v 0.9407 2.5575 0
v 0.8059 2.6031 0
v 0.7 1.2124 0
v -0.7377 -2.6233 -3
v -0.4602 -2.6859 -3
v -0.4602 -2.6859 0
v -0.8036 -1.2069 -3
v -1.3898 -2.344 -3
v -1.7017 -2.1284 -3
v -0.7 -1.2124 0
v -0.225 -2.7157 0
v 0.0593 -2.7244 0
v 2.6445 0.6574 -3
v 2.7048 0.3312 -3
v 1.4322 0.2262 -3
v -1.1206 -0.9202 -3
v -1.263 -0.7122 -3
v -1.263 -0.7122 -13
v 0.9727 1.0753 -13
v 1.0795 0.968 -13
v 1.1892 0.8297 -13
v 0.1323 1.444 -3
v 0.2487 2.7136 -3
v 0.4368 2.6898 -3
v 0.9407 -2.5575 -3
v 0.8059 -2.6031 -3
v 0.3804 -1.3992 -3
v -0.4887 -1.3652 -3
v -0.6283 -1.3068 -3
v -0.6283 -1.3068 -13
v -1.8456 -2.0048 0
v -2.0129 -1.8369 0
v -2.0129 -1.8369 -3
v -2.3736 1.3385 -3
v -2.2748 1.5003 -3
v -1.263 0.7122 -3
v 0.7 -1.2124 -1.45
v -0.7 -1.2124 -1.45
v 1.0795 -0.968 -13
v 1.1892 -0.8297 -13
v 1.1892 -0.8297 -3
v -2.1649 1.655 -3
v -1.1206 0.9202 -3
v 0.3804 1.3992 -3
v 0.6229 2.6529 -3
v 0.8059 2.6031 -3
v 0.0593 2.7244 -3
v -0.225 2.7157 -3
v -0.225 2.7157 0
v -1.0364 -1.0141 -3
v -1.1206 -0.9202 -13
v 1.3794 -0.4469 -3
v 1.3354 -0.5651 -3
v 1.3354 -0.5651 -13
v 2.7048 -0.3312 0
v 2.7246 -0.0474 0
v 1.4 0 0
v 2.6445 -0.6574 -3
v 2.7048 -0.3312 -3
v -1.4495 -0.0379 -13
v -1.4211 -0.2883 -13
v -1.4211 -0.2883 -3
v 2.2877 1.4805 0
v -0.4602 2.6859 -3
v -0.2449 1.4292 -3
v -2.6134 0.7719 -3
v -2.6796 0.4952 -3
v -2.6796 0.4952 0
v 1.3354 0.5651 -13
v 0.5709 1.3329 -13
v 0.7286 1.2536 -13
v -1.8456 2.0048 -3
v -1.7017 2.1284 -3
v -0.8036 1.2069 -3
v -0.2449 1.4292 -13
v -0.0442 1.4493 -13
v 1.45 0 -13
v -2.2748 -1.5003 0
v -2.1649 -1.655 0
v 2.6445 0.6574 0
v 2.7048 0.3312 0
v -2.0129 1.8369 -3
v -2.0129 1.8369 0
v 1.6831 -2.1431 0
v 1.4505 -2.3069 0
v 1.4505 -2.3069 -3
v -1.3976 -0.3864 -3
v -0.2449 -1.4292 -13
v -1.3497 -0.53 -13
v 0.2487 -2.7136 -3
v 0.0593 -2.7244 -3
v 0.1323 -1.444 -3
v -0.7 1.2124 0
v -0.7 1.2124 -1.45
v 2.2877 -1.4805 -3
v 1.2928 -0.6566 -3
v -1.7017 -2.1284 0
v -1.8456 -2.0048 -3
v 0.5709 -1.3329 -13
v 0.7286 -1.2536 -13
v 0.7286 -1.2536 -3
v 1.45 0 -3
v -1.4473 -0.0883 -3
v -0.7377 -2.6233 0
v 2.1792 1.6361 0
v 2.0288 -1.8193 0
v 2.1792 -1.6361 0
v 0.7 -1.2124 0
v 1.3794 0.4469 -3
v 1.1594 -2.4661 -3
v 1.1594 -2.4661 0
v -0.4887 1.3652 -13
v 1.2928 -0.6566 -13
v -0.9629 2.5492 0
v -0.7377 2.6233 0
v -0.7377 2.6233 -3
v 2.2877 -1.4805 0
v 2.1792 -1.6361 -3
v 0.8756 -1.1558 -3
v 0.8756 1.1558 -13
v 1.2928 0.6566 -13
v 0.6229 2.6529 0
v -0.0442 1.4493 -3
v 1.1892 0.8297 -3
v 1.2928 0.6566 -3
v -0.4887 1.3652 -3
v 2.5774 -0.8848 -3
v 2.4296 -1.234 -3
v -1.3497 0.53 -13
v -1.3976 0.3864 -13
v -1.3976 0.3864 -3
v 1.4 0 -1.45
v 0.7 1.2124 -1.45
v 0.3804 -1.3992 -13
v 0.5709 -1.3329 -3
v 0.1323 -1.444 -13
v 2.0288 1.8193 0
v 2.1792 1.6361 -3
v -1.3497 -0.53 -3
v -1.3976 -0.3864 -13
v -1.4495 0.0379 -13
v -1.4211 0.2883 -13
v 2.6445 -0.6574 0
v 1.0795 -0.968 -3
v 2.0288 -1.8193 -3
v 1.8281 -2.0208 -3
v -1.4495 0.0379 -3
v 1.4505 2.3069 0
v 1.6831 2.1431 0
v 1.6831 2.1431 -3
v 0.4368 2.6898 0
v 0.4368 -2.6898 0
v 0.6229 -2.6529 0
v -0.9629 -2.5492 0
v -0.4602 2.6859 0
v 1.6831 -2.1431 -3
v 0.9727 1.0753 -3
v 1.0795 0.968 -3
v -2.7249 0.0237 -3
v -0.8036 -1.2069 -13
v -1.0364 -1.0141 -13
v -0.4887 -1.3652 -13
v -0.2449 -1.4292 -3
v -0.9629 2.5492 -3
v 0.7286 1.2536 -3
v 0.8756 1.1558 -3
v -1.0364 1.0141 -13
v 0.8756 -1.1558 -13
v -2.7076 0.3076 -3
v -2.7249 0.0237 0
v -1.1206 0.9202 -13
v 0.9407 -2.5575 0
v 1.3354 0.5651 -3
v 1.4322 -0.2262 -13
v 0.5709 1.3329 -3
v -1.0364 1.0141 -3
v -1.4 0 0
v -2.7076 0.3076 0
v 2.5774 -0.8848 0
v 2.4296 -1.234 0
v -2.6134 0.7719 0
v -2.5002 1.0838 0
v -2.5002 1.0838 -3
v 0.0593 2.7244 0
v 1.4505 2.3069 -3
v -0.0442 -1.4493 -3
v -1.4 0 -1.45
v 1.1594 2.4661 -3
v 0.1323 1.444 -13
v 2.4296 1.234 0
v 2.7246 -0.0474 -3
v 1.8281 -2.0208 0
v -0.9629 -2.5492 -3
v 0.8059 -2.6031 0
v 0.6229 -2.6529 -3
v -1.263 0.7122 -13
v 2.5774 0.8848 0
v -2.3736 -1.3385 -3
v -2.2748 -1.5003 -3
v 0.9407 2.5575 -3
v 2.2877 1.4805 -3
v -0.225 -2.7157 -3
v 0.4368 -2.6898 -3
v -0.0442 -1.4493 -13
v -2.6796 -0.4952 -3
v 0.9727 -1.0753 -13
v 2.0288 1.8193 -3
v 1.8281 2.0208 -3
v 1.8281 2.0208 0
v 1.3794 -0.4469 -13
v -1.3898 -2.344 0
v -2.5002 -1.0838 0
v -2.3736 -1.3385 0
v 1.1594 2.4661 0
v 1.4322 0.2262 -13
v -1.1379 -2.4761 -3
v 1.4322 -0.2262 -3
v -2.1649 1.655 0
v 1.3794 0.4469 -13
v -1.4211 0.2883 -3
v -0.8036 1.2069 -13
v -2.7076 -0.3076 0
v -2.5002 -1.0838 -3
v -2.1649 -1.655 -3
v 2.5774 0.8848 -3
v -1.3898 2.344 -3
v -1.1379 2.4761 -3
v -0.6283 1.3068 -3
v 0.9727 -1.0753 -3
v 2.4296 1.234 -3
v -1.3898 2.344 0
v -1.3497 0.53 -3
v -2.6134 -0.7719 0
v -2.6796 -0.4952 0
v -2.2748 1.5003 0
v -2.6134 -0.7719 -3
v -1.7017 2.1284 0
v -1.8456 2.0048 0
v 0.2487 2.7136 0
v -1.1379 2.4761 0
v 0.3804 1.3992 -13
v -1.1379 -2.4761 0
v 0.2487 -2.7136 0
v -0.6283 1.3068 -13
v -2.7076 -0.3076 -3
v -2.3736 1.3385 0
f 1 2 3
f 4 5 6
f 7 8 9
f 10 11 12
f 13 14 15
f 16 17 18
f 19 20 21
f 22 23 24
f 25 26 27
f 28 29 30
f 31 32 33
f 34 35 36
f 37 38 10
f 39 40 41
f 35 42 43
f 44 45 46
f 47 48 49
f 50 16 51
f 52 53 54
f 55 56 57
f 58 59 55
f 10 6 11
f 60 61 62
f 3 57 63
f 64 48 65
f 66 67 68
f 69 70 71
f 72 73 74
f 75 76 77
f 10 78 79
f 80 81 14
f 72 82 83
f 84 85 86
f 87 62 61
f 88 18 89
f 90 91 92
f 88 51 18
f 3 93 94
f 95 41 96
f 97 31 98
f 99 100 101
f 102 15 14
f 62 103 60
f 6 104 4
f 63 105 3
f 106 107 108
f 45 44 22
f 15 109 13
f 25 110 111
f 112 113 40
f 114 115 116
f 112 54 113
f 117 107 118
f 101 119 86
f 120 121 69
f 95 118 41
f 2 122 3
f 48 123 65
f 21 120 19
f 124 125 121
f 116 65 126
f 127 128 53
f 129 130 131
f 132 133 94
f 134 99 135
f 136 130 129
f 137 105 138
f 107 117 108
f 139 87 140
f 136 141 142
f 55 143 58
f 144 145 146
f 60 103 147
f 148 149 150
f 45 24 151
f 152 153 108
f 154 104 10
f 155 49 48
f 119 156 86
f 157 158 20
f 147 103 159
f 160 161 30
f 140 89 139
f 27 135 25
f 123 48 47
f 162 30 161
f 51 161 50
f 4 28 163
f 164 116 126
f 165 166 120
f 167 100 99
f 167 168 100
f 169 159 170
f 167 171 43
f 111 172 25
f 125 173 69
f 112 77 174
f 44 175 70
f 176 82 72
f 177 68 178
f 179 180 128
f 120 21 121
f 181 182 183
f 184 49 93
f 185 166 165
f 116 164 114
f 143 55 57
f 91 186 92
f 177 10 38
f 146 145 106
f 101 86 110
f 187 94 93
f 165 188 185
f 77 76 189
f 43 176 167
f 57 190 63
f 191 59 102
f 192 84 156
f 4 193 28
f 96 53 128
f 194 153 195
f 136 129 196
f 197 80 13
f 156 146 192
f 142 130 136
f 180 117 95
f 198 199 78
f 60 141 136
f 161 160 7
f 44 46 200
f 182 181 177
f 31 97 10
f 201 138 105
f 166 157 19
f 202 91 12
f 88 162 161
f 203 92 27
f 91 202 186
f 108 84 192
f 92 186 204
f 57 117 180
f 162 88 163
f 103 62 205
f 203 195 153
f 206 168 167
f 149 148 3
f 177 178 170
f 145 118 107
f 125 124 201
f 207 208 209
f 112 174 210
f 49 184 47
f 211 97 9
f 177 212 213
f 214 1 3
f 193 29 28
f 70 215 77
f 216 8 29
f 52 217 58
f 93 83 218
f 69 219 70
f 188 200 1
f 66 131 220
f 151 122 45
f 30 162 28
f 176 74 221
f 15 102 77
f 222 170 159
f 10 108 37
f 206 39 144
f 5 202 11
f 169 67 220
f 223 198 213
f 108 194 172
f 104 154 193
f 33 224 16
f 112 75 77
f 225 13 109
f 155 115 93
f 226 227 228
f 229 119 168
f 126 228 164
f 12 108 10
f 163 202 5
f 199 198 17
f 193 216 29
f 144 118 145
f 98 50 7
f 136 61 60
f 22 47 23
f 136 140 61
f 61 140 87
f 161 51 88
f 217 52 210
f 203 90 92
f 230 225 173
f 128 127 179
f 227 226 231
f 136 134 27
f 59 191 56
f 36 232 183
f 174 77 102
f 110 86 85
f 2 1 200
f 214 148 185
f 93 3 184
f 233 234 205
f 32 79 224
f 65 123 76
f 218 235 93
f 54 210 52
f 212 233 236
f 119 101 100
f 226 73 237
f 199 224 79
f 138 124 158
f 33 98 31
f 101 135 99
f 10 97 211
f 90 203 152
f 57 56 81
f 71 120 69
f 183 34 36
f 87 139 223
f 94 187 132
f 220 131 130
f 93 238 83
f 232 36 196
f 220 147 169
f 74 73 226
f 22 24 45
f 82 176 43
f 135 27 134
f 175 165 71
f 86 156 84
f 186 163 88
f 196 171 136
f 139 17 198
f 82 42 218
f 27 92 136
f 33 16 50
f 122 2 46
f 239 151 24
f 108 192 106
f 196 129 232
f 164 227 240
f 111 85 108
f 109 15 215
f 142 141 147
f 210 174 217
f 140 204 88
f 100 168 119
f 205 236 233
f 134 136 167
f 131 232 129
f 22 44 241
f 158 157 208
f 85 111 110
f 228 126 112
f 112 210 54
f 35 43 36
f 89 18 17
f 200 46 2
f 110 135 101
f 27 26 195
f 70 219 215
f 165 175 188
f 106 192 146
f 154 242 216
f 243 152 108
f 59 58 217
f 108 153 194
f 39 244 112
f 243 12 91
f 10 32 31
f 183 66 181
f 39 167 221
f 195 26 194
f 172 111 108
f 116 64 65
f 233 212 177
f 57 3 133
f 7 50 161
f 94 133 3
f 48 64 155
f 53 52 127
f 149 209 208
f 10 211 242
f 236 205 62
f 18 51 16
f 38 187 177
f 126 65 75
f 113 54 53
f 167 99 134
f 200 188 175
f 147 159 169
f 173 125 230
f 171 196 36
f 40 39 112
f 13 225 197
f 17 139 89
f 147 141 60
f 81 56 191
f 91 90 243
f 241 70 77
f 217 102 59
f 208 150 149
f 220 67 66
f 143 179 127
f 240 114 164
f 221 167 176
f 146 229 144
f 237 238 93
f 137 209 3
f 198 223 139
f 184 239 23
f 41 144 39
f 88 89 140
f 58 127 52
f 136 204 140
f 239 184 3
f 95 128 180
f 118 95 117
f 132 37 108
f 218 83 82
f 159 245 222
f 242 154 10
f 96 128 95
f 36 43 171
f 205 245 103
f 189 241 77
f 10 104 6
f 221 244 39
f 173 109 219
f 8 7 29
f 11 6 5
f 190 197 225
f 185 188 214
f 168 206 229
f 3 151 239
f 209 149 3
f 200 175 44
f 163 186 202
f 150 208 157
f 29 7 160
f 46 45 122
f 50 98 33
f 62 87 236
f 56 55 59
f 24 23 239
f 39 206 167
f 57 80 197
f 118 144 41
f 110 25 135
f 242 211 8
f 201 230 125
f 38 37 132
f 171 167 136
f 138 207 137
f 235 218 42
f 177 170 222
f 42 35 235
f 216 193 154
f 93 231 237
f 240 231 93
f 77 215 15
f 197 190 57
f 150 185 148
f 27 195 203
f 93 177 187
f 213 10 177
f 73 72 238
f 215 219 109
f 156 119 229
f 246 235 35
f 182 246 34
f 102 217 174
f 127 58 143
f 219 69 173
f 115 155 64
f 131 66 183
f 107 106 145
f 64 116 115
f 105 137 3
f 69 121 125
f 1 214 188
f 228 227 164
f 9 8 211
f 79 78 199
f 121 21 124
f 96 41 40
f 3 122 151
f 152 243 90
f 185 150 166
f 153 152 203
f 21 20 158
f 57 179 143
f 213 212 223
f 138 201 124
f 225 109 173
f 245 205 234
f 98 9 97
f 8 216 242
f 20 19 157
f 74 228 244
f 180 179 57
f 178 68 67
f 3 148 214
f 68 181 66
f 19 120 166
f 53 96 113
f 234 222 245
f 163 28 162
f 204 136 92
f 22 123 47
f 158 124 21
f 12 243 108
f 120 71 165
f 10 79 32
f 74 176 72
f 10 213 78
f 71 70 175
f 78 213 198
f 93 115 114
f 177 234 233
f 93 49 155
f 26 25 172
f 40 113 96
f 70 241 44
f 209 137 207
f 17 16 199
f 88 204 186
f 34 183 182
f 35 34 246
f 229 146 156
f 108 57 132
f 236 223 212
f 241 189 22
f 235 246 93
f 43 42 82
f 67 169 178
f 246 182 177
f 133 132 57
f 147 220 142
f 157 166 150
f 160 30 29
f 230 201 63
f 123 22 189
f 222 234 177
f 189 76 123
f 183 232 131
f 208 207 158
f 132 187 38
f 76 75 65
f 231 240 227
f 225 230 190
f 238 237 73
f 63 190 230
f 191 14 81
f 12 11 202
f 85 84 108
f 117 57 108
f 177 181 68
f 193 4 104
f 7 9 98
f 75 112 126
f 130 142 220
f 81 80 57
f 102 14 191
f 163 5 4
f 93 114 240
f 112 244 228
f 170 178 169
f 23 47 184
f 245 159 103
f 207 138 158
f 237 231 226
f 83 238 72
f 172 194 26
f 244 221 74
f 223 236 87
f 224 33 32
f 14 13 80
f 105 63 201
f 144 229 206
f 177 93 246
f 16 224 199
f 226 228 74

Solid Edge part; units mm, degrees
sketch "Sketch1" plane through (0, 0, 0) normal (0, 0, 1) x (1, 0, 0)
  circle A0 centre (0, 0) radius 2.725
extrude "Protrusion1" add sketch "Sketch1" against normal blind 3
sketch "Sketch2" plane through (0, 0, 0) normal (0, 0, 1) x (1, 0, 0)
  line L0 (-0.7, -1.2124) -> (-1.05, -0.6062)
  line L1 (-1.4, 0) -> (-1.05, -0.6062)
  line L2 (-1.4, 0) -> (-1.05, 0.6062)
  line L3 (-0.7, 1.2124) -> (-1.05, 0.6062)
  line L4 (-0.7, 1.2124) -> (0, 1.2124)
  line L5 (0.7, 1.2124) -> (0, 1.2124)
  line L6 (0.7, 1.2124) -> (1.05, 0.6062)
  line L7 (1.4, 0) -> (1.05, 0.6062)
  line L8 (1.4, 0) -> (1.05, -0.6062)
  line L9 (0.7, -1.2124) -> (1.05, -0.6062)
  line L10 (0.7, -1.2124) -> (0, -1.2124)
  line L11 (-0.7, -1.2124) -> (0, -1.2124)
extrude "ExtrudedCutout_1" cut sketch "Sketch2" against normal blind 1.45
sketch "Sketch3" plane through (0, 0, -3) normal (0, 0, -1) x (1, 0, 0)
  circle A0 centre (0, 0) radius 1.45
extrude "ExtrudedProtrusion_2" add sketch "Sketch3" along normal blind 10
properties material "Stainless steel"
